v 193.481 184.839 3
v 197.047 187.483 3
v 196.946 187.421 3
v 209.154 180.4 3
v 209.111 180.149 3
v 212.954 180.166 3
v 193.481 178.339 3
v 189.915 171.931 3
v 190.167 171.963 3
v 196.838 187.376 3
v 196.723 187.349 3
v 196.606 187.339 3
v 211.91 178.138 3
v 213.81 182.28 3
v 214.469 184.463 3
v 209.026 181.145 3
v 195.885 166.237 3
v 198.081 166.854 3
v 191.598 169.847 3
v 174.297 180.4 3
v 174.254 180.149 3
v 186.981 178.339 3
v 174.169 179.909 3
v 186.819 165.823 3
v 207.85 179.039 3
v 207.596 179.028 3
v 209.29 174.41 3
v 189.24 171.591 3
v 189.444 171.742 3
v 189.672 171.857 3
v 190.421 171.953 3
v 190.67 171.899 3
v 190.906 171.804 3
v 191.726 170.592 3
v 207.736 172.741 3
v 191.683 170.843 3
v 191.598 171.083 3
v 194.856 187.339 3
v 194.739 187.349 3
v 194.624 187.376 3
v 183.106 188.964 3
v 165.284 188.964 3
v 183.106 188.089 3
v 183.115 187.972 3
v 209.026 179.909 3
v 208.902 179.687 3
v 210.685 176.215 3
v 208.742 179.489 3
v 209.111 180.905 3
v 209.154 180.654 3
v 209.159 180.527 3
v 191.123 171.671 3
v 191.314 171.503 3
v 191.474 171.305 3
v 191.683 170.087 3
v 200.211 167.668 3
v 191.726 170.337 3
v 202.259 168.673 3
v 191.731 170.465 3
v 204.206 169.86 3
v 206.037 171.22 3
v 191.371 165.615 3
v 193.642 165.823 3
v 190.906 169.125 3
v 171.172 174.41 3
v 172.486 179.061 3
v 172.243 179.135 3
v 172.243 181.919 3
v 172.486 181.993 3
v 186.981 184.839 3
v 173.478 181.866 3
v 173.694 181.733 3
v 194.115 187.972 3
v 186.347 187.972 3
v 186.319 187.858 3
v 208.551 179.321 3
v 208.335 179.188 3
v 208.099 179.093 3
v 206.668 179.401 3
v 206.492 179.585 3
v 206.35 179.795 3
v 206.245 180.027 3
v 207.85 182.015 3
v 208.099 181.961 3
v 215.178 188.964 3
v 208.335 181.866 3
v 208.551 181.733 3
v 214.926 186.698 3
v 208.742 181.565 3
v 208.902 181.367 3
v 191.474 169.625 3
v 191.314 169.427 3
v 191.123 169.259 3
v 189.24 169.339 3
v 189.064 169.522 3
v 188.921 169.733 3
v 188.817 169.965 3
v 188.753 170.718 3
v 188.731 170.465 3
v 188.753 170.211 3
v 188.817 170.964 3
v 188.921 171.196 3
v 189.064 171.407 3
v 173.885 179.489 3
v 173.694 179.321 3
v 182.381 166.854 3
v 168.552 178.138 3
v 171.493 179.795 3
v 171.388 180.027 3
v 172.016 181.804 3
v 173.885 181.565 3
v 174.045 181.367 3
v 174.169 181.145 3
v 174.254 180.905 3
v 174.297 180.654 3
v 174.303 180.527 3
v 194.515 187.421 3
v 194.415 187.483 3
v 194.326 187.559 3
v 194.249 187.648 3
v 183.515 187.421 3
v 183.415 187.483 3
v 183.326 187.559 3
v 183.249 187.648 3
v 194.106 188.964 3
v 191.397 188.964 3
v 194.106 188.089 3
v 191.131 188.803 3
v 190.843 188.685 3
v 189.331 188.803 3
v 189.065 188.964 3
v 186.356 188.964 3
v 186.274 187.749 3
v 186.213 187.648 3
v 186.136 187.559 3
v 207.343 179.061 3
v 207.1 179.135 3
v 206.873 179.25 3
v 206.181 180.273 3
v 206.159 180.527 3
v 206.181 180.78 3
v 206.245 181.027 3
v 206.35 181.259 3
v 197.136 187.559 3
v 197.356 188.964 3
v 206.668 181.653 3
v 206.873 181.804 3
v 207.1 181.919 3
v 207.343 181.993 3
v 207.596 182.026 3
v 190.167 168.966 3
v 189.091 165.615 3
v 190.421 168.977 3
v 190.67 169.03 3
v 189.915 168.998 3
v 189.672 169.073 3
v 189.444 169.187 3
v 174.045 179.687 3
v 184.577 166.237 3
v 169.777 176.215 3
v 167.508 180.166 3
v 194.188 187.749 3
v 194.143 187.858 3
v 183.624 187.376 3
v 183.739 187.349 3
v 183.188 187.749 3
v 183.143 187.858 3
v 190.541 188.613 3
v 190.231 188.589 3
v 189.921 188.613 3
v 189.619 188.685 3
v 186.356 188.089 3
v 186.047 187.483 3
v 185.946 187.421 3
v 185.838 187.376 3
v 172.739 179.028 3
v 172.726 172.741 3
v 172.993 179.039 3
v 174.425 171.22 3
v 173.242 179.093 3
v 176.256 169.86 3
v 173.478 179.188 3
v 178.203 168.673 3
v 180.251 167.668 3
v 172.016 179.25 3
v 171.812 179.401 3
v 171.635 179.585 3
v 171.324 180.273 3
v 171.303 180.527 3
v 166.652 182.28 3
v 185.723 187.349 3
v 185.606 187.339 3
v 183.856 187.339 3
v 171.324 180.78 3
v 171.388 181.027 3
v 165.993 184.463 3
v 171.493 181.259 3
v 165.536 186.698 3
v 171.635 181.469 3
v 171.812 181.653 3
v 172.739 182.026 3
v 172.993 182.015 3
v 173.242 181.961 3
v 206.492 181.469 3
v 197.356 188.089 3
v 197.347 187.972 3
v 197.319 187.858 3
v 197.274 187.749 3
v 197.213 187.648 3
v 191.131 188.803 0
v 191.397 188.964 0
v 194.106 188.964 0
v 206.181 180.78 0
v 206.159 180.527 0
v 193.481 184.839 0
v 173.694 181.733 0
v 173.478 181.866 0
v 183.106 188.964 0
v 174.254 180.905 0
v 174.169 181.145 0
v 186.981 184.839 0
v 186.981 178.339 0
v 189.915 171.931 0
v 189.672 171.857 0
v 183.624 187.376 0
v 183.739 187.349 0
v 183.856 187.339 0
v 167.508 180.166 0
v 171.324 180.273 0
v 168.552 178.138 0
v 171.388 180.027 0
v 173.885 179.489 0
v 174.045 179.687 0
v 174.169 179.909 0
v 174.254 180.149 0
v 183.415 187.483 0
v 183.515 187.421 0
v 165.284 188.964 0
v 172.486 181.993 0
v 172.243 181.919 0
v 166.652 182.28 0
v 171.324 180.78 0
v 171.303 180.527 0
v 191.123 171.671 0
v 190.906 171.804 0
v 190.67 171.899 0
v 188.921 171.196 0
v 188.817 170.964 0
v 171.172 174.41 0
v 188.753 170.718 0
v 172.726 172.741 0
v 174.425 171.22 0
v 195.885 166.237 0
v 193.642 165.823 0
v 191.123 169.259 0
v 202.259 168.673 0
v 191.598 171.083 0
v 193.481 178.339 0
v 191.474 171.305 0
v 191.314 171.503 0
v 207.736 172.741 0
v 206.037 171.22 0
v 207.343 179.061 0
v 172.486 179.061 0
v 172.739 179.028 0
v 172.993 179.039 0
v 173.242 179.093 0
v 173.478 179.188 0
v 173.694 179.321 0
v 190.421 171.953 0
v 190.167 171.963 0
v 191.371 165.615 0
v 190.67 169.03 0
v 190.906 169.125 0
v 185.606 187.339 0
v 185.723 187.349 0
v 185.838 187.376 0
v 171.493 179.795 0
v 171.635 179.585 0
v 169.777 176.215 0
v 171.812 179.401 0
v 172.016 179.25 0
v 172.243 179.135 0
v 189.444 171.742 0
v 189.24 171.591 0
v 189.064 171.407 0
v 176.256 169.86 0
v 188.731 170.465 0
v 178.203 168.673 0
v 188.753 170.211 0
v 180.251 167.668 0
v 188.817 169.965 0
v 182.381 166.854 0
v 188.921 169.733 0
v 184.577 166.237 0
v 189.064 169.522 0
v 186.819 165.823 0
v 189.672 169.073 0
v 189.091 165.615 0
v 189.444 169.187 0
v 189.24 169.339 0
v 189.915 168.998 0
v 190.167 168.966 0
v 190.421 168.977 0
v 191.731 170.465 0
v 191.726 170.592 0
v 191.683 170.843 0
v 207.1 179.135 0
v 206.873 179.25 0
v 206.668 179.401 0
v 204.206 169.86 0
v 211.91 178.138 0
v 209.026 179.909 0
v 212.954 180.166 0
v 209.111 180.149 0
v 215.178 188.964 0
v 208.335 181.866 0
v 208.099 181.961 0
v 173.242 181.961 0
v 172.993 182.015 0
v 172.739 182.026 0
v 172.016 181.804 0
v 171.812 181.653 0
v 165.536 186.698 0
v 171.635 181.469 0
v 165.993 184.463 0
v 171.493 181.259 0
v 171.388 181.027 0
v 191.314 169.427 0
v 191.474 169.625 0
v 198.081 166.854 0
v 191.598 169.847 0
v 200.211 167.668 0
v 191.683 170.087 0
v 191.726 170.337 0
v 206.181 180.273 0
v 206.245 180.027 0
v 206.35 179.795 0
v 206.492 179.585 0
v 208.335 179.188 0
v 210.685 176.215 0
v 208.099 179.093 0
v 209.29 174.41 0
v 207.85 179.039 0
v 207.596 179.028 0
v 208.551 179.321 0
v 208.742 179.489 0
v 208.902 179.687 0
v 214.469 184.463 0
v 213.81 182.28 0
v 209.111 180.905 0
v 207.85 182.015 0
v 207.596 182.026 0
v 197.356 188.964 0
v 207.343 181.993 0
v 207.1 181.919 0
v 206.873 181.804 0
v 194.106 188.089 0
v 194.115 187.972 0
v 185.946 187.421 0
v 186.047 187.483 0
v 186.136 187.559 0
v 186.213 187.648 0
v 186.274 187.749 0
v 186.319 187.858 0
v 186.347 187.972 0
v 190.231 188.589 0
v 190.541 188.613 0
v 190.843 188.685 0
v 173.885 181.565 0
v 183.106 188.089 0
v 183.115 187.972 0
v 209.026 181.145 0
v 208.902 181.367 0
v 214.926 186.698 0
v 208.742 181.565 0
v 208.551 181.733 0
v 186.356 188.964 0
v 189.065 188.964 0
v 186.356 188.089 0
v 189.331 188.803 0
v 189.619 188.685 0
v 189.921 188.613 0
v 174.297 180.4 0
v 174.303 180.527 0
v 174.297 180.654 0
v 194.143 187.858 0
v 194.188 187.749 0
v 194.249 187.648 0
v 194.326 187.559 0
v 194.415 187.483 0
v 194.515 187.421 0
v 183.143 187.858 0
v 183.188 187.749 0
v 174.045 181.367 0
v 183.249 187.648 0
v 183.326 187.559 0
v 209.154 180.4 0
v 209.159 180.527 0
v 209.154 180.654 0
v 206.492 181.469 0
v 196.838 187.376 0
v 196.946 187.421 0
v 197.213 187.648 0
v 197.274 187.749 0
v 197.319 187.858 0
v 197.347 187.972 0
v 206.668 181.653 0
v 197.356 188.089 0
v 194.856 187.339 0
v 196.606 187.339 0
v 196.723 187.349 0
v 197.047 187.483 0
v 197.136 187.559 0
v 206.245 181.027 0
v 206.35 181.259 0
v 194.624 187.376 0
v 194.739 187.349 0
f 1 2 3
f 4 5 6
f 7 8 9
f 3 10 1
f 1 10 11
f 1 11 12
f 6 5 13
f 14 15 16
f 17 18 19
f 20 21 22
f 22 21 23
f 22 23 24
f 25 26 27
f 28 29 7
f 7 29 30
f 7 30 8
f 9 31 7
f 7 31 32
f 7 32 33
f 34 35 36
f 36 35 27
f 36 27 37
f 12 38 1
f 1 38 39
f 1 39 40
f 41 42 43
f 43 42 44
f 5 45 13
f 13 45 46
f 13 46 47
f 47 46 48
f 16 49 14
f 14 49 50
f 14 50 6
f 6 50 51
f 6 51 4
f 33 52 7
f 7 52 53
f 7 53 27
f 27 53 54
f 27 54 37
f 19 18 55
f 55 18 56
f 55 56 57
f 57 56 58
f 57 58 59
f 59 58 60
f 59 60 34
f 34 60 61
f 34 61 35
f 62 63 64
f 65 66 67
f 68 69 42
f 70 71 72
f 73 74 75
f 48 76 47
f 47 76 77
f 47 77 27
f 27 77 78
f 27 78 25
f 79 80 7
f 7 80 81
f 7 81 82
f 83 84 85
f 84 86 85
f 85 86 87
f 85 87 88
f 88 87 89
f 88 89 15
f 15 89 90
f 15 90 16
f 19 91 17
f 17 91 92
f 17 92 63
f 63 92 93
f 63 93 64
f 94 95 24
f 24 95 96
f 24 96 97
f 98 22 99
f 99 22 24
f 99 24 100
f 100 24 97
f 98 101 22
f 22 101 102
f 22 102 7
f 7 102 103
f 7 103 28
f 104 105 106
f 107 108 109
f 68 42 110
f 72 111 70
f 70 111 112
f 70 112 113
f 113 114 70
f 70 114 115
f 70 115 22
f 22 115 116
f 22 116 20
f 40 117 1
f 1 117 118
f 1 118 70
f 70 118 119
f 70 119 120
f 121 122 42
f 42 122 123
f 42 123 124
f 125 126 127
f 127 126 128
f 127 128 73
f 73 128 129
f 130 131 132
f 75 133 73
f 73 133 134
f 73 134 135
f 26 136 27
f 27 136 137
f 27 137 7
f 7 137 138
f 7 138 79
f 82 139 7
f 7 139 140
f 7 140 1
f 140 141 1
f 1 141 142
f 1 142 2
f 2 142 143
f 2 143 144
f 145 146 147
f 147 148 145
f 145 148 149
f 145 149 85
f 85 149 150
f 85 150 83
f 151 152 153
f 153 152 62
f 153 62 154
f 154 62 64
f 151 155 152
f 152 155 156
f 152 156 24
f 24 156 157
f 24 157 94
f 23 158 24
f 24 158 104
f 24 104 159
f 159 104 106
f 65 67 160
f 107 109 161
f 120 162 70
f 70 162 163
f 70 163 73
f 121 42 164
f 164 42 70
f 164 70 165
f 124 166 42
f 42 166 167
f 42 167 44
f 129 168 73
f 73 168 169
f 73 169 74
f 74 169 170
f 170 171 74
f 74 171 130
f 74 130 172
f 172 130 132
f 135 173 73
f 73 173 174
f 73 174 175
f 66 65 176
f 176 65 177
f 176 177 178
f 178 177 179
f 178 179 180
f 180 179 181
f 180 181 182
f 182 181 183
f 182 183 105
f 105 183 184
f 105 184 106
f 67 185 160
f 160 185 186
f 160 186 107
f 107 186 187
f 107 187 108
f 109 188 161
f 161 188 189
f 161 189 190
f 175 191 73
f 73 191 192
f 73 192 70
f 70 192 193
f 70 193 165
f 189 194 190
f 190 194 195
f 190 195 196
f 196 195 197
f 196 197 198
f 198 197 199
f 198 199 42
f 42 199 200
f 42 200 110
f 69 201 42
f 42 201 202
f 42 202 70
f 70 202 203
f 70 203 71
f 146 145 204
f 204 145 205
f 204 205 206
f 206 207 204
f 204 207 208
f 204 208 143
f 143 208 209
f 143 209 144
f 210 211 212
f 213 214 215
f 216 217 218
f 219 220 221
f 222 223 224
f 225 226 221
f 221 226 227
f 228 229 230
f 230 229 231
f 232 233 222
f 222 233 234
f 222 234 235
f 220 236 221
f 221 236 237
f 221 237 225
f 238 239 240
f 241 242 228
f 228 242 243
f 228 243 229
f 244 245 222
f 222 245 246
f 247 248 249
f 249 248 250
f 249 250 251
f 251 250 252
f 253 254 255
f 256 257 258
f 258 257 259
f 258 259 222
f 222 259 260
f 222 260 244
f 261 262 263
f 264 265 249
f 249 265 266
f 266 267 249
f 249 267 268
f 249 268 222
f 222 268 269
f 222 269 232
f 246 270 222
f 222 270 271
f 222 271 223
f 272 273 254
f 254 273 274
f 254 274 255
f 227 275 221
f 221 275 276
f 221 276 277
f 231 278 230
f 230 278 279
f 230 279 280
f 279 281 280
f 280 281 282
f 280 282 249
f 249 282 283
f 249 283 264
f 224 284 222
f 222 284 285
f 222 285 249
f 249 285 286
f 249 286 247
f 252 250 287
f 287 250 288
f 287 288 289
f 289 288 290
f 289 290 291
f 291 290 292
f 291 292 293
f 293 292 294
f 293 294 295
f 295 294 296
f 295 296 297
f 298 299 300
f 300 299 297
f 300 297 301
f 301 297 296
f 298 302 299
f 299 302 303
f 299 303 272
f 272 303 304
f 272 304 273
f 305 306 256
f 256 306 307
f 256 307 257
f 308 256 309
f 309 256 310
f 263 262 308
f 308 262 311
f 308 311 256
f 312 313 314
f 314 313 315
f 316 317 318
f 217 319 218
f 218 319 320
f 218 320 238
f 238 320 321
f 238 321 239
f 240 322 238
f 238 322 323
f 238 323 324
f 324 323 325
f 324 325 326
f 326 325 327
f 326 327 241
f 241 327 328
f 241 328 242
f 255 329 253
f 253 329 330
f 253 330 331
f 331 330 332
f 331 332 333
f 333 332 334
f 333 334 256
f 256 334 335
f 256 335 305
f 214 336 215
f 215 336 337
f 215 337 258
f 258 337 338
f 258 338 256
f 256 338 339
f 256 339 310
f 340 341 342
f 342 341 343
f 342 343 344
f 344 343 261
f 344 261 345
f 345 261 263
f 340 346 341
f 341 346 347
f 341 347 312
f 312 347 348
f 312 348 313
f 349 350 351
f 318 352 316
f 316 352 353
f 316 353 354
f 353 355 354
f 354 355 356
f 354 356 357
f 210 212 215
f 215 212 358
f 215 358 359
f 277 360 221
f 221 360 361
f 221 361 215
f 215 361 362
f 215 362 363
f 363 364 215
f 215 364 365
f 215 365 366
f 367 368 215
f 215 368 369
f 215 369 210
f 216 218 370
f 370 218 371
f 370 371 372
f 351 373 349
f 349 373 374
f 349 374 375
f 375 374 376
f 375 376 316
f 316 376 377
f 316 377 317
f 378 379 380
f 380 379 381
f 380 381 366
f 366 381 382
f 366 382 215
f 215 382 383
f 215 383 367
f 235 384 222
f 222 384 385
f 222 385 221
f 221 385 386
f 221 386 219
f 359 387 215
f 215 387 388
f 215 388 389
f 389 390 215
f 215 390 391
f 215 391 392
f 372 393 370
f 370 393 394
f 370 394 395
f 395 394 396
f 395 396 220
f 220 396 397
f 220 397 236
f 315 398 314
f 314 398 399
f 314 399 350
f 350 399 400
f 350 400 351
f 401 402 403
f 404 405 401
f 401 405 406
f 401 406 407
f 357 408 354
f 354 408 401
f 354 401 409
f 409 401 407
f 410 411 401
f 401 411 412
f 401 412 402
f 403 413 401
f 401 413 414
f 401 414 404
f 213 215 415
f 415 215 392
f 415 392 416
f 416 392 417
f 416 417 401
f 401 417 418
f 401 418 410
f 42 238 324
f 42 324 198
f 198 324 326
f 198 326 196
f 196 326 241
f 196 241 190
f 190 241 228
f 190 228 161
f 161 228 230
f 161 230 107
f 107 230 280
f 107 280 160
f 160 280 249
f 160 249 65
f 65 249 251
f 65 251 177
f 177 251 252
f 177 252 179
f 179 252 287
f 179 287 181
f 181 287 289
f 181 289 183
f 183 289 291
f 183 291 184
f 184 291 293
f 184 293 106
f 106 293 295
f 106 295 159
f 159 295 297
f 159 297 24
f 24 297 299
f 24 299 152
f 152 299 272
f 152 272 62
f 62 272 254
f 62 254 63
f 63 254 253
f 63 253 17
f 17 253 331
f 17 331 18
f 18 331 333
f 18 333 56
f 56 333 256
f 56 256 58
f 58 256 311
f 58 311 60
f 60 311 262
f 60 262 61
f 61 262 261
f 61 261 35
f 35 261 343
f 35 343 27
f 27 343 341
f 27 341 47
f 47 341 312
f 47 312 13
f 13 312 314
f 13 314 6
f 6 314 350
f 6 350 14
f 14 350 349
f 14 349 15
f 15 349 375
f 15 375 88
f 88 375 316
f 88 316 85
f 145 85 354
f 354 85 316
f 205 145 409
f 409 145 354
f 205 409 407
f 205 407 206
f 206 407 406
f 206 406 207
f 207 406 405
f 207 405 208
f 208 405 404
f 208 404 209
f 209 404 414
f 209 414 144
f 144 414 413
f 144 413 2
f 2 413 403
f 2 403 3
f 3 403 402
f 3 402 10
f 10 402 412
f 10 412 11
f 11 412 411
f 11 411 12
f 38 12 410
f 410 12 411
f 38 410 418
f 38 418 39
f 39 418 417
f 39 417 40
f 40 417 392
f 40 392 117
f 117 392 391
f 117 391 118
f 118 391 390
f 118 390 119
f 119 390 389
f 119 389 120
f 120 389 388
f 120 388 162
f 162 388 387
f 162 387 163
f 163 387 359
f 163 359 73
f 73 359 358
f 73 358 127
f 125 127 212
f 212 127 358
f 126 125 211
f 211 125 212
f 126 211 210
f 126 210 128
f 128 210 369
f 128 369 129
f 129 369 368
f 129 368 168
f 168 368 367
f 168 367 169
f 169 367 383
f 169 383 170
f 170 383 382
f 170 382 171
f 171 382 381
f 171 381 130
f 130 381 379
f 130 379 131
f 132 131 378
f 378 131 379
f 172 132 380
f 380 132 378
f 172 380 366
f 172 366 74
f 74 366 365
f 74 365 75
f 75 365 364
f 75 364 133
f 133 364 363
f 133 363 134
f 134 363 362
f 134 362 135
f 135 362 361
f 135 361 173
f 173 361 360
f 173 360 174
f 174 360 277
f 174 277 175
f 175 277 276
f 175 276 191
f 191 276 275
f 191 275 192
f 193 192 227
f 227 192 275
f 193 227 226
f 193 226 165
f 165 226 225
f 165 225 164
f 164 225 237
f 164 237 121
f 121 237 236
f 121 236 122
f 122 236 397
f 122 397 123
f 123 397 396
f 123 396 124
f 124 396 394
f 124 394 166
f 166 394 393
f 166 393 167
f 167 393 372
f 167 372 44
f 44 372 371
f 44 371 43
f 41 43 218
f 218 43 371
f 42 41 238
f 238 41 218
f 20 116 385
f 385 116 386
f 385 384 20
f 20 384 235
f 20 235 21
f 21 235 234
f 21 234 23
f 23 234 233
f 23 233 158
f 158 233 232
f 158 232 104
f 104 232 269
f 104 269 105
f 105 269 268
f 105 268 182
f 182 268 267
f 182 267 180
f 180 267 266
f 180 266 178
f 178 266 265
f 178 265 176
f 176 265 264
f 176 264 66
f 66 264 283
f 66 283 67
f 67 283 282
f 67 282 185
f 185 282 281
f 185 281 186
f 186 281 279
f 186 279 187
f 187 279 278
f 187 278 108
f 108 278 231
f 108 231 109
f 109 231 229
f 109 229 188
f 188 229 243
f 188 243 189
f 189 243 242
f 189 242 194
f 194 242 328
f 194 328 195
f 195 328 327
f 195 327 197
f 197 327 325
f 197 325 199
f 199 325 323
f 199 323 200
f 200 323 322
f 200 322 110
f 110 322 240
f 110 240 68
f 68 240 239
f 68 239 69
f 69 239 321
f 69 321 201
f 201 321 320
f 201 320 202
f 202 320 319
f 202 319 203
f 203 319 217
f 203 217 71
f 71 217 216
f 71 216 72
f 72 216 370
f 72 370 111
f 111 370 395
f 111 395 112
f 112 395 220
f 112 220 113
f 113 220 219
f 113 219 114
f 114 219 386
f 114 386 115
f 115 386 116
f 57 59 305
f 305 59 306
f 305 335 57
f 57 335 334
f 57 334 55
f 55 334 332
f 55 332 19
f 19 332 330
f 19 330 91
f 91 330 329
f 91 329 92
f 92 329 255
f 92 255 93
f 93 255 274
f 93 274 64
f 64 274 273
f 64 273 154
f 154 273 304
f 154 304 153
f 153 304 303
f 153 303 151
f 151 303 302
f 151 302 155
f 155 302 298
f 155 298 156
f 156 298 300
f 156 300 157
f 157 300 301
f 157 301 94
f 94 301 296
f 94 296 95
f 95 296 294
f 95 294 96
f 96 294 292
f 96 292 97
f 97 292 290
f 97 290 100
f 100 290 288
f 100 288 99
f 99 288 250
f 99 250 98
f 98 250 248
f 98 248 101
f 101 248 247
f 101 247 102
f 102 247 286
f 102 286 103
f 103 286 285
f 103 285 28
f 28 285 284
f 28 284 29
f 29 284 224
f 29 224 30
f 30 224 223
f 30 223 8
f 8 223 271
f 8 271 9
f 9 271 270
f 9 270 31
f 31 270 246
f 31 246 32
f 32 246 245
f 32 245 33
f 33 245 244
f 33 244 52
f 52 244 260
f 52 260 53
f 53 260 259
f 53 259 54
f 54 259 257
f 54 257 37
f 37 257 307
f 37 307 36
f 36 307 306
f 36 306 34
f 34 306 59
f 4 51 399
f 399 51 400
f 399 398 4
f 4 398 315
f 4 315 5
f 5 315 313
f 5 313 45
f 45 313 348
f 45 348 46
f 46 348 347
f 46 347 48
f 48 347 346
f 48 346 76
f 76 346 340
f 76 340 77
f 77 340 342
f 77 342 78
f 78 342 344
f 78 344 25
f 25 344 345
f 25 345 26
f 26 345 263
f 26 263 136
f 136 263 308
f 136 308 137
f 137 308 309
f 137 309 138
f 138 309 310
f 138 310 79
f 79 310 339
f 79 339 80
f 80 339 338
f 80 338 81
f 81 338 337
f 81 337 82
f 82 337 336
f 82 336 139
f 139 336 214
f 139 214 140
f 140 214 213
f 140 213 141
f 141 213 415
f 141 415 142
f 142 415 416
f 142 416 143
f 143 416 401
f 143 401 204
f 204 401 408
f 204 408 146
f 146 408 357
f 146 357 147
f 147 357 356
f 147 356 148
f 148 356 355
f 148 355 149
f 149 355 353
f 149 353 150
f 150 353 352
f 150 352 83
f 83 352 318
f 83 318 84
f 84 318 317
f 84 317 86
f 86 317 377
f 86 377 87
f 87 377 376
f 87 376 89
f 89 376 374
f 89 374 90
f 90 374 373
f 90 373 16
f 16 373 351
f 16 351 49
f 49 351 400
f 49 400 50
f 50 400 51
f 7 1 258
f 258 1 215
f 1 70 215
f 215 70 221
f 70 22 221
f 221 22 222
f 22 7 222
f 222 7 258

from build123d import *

# Parameters (mm, degrees)
MODEL_R                 = 1.5
MODEL_W                 = 6.5
MODEL_H                 = 6.5
SALIENTE_EXTRUIR1_DEPTH = 3


with BuildPart() as part:
    # Model → Saliente-Extruir1 (new body)
    with BuildSketch(Plane.XY):
        with BuildLine():
            Line((191.396871733, 188.964281637), (194.105949351, 188.964281637))
            Line((194.105949351, 188.964281637), (194.105949351, 188.089281637))
            ThreePointArc((194.105949351, 188.089281637), (194.325619265, 187.558951551), (194.855949351, 187.339281637))
            Line((194.855949351, 187.339281637), (196.605949351, 187.339281637))
            ThreePointArc((196.605949351, 187.339281637), (197.136279437, 187.558951551), (197.355949351, 188.089281637))
            Line((197.355949351, 188.089281637), (197.355949351, 188.964281637))
            Line((197.355949351, 188.964281637), (215.17808095, 188.964281637))
            ThreePointArc((215.17808095, 188.964281637), (208.476468276, 173.498317967), (193.480949351, 165.80143179))
            ThreePointArc((193.480949351, 165.80143179), (174.362087289, 171.27143453), (165.283817753, 188.964281637))
            Line((165.283817753, 188.964281637), (183.105949351, 188.964281637))
            Line((183.105949351, 188.964281637), (183.105949351, 188.089281637))
            ThreePointArc((183.105949351, 188.089281637), (183.325619265, 187.558951551), (183.855949351, 187.339281637))
            Line((183.855949351, 187.339281637), (185.605949351, 187.339281637))
            ThreePointArc((185.605949351, 187.339281637), (186.136279437, 187.558951551), (186.355949351, 188.089281637))
            Line((186.355949351, 188.089281637), (186.355949351, 188.964281637))
            Line((186.355949351, 188.964281637), (189.06502697, 188.964281637))
            ThreePointArc((189.06502697, 188.964281637), (190.230949351, 188.589281637), (191.396871733, 188.964281637))
        make_face()
        with Locations((172.802524293, 180.526975738)):
            Circle(MODEL_R, mode=Mode.SUBTRACT)
        with Locations((190.230949351, 170.464669839)):
            Circle(MODEL_R, mode=Mode.SUBTRACT)
        with Locations((207.659374409, 180.526975738)):
            Circle(MODEL_R, mode=Mode.SUBTRACT)
        with Locations((190.230949351, 181.589281637)):
            Rectangle(MODEL_W, MODEL_H, mode=Mode.SUBTRACT)
    extrude(amount=SALIENTE_EXTRUIR1_DEPTH)


solid = part.part
